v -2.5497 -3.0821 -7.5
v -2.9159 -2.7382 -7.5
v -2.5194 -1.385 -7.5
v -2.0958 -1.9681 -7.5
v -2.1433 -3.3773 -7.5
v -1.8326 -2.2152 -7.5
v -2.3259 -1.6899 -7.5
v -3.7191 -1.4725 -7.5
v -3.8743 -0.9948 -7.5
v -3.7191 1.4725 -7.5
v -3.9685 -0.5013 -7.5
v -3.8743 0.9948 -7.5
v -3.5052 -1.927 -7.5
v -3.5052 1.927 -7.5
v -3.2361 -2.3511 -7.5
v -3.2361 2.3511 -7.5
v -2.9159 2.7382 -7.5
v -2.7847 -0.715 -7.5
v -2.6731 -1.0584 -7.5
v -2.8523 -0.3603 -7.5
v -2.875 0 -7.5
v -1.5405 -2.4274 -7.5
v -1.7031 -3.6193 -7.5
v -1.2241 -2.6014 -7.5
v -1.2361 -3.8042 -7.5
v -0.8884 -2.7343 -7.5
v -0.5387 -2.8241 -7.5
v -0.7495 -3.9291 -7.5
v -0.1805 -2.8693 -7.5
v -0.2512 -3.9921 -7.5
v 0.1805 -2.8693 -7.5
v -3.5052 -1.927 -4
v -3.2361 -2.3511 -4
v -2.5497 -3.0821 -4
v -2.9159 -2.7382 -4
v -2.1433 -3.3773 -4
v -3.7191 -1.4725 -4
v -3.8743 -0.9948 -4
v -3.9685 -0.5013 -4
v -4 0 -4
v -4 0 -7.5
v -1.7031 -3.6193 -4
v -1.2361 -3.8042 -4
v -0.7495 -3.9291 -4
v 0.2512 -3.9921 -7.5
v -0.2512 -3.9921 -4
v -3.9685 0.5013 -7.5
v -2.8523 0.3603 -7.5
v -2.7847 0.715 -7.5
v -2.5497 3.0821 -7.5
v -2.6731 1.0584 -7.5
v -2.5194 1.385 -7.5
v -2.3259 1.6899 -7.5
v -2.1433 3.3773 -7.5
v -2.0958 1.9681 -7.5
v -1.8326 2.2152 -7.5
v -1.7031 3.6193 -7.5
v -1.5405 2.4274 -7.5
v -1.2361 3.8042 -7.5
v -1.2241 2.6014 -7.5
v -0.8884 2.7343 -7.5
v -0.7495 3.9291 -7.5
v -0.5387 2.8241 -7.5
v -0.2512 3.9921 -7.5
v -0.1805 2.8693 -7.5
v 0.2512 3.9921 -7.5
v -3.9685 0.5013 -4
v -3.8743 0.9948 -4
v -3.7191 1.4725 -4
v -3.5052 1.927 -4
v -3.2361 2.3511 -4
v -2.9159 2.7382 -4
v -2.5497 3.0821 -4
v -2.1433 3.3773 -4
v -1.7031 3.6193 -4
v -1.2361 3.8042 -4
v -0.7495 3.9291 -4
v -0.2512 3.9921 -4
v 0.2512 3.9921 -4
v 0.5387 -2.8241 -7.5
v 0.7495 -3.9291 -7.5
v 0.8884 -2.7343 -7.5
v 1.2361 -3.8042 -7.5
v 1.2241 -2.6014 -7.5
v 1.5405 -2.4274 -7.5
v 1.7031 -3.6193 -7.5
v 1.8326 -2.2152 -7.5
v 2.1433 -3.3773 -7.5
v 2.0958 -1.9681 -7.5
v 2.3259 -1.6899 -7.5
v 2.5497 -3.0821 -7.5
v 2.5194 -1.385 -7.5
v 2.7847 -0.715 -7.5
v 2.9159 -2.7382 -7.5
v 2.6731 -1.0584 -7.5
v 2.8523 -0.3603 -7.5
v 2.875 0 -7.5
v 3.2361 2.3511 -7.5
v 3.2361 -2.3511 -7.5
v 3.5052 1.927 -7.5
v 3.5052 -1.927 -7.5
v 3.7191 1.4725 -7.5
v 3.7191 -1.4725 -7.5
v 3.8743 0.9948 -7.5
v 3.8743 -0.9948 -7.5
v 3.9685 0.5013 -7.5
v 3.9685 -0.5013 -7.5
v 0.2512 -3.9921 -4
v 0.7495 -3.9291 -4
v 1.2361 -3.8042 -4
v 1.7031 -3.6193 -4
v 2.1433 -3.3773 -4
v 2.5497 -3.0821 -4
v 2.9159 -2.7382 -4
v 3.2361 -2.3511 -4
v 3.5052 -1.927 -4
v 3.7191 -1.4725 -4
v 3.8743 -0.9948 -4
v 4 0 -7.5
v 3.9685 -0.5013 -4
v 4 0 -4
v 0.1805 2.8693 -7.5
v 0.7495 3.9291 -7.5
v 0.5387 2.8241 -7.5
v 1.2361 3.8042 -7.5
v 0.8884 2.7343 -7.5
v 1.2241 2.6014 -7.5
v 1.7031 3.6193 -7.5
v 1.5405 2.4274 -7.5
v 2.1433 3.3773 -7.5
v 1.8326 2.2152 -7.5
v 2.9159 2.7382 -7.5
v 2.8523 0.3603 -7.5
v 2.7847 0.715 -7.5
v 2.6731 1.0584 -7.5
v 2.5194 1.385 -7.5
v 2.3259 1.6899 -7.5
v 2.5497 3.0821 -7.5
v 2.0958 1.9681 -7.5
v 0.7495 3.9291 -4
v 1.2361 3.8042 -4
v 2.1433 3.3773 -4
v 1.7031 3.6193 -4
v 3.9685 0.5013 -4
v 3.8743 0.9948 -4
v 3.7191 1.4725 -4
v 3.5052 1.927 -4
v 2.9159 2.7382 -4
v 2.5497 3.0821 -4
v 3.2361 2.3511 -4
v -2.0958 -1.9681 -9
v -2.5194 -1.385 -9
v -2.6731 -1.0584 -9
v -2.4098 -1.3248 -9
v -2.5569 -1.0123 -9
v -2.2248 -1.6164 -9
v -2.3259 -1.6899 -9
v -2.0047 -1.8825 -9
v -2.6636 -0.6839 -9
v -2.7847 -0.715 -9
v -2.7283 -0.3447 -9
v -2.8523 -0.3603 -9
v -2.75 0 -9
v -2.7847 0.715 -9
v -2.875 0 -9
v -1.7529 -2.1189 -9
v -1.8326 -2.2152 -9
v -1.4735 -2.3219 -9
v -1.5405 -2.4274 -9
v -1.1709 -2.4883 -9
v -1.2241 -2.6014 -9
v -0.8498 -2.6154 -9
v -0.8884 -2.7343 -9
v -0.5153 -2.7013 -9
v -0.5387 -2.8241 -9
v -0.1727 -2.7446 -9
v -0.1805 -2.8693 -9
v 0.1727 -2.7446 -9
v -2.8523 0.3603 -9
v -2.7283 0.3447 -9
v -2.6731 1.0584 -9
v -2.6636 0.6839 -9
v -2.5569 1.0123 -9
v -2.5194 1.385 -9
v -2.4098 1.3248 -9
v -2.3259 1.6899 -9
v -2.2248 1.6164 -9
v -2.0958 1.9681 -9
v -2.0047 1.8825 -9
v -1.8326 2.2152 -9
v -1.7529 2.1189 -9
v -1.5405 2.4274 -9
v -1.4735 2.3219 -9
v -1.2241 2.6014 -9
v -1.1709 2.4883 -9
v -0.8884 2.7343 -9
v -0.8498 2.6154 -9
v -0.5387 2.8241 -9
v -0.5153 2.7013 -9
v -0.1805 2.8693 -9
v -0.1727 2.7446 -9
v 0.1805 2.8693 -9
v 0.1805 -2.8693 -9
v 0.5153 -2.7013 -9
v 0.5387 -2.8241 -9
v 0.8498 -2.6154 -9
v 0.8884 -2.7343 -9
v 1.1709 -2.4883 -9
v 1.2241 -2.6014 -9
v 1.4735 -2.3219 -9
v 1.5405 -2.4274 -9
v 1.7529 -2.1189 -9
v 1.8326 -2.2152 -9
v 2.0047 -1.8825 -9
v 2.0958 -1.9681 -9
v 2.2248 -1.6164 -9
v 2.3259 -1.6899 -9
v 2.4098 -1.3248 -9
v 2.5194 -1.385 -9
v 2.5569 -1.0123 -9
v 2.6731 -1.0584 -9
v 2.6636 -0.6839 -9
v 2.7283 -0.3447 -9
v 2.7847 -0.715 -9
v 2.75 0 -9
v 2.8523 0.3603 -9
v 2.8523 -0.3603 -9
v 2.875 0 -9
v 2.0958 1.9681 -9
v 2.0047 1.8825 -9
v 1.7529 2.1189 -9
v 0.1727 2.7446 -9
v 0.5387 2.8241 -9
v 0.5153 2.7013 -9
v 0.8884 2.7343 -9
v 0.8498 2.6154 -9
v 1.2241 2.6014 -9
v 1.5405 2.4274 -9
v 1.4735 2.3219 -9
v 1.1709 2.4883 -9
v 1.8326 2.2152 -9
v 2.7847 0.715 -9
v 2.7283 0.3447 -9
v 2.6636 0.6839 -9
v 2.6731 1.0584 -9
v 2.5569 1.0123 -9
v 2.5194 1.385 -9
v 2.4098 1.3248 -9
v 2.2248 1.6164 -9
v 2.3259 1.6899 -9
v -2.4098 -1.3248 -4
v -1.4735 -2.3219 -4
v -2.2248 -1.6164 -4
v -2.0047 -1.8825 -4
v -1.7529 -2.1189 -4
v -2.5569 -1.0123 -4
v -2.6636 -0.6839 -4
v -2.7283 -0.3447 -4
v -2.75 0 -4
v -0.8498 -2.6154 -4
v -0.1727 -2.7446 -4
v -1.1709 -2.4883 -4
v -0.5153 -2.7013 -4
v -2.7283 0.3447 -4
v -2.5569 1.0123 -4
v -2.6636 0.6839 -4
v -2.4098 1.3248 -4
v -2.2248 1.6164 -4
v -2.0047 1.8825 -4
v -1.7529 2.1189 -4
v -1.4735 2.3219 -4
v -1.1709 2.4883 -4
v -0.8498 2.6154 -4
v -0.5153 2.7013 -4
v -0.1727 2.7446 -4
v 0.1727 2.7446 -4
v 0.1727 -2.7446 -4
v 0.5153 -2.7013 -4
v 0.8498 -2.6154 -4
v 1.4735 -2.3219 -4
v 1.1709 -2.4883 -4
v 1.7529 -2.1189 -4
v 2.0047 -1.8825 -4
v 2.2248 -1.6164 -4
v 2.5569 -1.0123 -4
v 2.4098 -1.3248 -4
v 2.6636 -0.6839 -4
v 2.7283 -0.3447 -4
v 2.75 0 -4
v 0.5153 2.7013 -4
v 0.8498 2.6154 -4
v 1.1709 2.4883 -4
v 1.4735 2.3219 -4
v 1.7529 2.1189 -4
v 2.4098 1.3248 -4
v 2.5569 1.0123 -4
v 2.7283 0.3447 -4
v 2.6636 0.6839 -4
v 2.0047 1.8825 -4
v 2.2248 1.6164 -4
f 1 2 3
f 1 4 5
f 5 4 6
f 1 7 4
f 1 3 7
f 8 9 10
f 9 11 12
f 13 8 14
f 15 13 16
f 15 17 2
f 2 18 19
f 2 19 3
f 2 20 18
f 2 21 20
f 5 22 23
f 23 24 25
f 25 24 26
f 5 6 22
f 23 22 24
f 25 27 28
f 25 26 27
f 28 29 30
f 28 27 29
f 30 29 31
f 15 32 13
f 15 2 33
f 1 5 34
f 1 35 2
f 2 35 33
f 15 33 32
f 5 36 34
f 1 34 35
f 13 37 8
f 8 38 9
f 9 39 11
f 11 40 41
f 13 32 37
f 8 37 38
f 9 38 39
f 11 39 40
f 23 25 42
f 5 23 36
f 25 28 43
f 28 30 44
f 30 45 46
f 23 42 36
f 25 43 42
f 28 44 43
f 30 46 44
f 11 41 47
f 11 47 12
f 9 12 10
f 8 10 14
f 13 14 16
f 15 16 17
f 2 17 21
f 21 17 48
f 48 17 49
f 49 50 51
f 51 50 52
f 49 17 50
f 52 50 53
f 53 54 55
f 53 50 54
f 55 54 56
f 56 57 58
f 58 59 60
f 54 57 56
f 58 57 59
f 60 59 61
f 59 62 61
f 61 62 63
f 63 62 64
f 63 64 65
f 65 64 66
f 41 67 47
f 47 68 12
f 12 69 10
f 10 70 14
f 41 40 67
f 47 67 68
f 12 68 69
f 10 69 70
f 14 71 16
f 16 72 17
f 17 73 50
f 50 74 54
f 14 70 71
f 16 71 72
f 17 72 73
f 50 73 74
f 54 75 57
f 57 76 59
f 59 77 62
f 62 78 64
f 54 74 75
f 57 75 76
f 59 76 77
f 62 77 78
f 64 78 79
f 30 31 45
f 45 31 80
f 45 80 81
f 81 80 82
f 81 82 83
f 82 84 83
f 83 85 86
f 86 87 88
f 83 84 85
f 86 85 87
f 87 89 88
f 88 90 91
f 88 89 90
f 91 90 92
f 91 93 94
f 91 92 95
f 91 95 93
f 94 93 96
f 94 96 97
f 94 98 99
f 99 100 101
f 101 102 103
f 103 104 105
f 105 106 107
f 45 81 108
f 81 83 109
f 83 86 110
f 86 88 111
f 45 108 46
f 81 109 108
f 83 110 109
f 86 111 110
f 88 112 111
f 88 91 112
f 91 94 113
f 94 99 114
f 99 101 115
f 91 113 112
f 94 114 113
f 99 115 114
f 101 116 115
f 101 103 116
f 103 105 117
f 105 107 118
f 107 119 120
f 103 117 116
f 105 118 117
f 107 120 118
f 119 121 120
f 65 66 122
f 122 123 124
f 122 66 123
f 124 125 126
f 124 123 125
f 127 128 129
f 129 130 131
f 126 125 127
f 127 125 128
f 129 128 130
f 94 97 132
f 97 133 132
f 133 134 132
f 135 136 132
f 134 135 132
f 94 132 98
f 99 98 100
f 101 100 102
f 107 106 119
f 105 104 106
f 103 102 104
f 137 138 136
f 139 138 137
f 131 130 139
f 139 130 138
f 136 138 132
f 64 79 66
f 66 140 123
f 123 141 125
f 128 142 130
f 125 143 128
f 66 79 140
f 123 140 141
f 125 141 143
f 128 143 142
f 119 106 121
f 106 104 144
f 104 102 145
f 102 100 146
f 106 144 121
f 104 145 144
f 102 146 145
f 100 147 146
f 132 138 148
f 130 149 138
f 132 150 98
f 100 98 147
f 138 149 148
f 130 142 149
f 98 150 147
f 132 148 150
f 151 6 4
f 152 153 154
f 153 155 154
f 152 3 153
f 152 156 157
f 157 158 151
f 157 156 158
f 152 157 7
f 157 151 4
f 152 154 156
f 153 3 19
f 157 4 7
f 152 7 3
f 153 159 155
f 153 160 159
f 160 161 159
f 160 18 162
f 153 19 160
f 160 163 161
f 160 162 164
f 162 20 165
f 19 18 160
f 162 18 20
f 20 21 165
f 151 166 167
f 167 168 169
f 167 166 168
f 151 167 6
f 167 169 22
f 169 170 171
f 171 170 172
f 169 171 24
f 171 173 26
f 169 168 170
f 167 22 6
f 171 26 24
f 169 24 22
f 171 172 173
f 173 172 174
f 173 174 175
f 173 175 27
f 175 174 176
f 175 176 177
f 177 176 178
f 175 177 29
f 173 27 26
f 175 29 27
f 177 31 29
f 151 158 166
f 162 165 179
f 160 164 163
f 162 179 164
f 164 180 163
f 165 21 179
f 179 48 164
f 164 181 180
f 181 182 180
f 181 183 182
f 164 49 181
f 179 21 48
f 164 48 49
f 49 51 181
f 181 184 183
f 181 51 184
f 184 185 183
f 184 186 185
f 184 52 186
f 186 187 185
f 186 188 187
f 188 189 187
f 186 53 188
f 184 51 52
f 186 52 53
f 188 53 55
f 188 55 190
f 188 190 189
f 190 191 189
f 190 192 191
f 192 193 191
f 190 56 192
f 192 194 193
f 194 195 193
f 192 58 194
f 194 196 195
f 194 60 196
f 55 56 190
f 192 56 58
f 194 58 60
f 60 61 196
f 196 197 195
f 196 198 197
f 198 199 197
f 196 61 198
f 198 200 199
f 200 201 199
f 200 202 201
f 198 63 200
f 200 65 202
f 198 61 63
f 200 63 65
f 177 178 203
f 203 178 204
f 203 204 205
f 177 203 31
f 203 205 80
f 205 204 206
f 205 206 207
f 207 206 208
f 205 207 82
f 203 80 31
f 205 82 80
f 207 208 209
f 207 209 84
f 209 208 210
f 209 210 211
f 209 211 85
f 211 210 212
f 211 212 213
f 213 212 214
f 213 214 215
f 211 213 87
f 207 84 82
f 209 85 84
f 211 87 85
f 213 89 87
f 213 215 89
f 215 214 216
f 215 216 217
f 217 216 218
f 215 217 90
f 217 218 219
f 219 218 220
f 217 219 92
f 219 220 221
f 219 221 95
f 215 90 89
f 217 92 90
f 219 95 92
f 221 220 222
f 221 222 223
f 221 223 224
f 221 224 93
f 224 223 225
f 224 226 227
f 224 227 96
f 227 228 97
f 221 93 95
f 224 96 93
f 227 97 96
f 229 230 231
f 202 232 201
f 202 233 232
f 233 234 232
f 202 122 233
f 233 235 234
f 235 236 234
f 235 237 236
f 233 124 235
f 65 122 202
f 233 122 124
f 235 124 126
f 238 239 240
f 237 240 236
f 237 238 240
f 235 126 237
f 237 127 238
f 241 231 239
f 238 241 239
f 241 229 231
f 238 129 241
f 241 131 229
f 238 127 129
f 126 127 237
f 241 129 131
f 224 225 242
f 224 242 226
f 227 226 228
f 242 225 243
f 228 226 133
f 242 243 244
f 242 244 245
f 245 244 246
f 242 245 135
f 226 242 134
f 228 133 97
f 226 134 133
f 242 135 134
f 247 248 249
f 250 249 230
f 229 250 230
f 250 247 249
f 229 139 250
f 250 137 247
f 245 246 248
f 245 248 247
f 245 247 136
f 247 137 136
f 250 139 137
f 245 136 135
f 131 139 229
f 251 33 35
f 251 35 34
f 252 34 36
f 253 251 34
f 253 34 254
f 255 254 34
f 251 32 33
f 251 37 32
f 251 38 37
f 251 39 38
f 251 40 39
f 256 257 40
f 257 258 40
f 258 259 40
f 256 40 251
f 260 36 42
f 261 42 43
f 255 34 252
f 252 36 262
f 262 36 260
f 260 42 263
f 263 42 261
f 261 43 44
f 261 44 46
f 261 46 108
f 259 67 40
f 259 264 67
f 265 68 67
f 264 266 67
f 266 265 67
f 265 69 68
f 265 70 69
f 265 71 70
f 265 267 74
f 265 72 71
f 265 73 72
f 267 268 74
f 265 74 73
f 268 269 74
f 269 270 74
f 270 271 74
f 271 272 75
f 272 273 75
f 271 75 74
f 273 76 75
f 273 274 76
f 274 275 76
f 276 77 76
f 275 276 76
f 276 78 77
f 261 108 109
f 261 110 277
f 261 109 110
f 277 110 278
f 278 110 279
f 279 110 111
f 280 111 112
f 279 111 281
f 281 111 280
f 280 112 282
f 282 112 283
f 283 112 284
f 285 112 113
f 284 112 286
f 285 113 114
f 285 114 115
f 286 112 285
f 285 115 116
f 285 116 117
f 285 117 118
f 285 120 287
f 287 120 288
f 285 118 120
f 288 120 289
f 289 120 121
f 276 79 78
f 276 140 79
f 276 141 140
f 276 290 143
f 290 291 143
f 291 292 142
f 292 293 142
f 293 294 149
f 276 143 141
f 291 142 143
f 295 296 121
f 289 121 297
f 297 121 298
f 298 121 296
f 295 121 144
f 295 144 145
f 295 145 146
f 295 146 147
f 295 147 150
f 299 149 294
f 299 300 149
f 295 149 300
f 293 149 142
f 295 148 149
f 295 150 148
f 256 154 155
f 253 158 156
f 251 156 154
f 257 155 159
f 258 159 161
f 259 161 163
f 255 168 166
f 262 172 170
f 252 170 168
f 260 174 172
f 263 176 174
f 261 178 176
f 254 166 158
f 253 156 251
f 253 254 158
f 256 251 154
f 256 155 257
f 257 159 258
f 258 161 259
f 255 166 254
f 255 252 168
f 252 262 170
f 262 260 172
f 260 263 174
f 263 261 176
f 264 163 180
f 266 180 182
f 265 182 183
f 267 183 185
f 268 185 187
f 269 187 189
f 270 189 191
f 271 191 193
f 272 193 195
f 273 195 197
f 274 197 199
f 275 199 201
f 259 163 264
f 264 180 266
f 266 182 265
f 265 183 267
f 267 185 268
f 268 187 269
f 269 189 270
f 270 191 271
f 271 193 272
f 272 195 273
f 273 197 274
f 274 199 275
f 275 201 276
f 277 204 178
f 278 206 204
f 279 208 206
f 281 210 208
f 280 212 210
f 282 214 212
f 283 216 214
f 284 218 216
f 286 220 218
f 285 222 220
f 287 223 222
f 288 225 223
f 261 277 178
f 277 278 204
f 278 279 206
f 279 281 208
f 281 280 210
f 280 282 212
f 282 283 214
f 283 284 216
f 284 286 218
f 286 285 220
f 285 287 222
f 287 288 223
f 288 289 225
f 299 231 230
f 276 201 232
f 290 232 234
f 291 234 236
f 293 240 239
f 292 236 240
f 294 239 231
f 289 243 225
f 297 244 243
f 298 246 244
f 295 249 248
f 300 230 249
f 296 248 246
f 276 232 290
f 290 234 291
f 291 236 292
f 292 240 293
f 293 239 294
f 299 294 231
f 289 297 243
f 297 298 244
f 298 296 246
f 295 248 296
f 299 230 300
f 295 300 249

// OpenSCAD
$fn = 50;

difference() {
	union() {
		translate(v = [0, 0, -7.5]) {
			cylinder(h = 7.5, r = 4.0);
		}
		#translate(v = [0, 0, -9.0]) {
			cylinder(h = 9, r = 2.875);
		}
	}
	union() {
		translate(v = [0, 0, 0]) {
			rotate(a = [0, 0, 0]) {
				difference() {
					union() {
						translate(v = [0, 0, -4]) {
							linear_extrude(height = 4) {
								polygon(points = [[4.8468, 0.0], [2.4234000000000004, 4.197451927062417], [-2.423399999999999, 4.197451927062417], [-4.8468, 5.935618106107392e-16], [-2.423400000000002, -4.197451927062416], [2.423399999999997, -4.197451927062419]]);
							}
						}
					}
					union();
				}
			}
		}
		#translate(v = [0, 0, -100.0]) {
			cylinder(h = 200, r = 2.75);
		}
	}
}
